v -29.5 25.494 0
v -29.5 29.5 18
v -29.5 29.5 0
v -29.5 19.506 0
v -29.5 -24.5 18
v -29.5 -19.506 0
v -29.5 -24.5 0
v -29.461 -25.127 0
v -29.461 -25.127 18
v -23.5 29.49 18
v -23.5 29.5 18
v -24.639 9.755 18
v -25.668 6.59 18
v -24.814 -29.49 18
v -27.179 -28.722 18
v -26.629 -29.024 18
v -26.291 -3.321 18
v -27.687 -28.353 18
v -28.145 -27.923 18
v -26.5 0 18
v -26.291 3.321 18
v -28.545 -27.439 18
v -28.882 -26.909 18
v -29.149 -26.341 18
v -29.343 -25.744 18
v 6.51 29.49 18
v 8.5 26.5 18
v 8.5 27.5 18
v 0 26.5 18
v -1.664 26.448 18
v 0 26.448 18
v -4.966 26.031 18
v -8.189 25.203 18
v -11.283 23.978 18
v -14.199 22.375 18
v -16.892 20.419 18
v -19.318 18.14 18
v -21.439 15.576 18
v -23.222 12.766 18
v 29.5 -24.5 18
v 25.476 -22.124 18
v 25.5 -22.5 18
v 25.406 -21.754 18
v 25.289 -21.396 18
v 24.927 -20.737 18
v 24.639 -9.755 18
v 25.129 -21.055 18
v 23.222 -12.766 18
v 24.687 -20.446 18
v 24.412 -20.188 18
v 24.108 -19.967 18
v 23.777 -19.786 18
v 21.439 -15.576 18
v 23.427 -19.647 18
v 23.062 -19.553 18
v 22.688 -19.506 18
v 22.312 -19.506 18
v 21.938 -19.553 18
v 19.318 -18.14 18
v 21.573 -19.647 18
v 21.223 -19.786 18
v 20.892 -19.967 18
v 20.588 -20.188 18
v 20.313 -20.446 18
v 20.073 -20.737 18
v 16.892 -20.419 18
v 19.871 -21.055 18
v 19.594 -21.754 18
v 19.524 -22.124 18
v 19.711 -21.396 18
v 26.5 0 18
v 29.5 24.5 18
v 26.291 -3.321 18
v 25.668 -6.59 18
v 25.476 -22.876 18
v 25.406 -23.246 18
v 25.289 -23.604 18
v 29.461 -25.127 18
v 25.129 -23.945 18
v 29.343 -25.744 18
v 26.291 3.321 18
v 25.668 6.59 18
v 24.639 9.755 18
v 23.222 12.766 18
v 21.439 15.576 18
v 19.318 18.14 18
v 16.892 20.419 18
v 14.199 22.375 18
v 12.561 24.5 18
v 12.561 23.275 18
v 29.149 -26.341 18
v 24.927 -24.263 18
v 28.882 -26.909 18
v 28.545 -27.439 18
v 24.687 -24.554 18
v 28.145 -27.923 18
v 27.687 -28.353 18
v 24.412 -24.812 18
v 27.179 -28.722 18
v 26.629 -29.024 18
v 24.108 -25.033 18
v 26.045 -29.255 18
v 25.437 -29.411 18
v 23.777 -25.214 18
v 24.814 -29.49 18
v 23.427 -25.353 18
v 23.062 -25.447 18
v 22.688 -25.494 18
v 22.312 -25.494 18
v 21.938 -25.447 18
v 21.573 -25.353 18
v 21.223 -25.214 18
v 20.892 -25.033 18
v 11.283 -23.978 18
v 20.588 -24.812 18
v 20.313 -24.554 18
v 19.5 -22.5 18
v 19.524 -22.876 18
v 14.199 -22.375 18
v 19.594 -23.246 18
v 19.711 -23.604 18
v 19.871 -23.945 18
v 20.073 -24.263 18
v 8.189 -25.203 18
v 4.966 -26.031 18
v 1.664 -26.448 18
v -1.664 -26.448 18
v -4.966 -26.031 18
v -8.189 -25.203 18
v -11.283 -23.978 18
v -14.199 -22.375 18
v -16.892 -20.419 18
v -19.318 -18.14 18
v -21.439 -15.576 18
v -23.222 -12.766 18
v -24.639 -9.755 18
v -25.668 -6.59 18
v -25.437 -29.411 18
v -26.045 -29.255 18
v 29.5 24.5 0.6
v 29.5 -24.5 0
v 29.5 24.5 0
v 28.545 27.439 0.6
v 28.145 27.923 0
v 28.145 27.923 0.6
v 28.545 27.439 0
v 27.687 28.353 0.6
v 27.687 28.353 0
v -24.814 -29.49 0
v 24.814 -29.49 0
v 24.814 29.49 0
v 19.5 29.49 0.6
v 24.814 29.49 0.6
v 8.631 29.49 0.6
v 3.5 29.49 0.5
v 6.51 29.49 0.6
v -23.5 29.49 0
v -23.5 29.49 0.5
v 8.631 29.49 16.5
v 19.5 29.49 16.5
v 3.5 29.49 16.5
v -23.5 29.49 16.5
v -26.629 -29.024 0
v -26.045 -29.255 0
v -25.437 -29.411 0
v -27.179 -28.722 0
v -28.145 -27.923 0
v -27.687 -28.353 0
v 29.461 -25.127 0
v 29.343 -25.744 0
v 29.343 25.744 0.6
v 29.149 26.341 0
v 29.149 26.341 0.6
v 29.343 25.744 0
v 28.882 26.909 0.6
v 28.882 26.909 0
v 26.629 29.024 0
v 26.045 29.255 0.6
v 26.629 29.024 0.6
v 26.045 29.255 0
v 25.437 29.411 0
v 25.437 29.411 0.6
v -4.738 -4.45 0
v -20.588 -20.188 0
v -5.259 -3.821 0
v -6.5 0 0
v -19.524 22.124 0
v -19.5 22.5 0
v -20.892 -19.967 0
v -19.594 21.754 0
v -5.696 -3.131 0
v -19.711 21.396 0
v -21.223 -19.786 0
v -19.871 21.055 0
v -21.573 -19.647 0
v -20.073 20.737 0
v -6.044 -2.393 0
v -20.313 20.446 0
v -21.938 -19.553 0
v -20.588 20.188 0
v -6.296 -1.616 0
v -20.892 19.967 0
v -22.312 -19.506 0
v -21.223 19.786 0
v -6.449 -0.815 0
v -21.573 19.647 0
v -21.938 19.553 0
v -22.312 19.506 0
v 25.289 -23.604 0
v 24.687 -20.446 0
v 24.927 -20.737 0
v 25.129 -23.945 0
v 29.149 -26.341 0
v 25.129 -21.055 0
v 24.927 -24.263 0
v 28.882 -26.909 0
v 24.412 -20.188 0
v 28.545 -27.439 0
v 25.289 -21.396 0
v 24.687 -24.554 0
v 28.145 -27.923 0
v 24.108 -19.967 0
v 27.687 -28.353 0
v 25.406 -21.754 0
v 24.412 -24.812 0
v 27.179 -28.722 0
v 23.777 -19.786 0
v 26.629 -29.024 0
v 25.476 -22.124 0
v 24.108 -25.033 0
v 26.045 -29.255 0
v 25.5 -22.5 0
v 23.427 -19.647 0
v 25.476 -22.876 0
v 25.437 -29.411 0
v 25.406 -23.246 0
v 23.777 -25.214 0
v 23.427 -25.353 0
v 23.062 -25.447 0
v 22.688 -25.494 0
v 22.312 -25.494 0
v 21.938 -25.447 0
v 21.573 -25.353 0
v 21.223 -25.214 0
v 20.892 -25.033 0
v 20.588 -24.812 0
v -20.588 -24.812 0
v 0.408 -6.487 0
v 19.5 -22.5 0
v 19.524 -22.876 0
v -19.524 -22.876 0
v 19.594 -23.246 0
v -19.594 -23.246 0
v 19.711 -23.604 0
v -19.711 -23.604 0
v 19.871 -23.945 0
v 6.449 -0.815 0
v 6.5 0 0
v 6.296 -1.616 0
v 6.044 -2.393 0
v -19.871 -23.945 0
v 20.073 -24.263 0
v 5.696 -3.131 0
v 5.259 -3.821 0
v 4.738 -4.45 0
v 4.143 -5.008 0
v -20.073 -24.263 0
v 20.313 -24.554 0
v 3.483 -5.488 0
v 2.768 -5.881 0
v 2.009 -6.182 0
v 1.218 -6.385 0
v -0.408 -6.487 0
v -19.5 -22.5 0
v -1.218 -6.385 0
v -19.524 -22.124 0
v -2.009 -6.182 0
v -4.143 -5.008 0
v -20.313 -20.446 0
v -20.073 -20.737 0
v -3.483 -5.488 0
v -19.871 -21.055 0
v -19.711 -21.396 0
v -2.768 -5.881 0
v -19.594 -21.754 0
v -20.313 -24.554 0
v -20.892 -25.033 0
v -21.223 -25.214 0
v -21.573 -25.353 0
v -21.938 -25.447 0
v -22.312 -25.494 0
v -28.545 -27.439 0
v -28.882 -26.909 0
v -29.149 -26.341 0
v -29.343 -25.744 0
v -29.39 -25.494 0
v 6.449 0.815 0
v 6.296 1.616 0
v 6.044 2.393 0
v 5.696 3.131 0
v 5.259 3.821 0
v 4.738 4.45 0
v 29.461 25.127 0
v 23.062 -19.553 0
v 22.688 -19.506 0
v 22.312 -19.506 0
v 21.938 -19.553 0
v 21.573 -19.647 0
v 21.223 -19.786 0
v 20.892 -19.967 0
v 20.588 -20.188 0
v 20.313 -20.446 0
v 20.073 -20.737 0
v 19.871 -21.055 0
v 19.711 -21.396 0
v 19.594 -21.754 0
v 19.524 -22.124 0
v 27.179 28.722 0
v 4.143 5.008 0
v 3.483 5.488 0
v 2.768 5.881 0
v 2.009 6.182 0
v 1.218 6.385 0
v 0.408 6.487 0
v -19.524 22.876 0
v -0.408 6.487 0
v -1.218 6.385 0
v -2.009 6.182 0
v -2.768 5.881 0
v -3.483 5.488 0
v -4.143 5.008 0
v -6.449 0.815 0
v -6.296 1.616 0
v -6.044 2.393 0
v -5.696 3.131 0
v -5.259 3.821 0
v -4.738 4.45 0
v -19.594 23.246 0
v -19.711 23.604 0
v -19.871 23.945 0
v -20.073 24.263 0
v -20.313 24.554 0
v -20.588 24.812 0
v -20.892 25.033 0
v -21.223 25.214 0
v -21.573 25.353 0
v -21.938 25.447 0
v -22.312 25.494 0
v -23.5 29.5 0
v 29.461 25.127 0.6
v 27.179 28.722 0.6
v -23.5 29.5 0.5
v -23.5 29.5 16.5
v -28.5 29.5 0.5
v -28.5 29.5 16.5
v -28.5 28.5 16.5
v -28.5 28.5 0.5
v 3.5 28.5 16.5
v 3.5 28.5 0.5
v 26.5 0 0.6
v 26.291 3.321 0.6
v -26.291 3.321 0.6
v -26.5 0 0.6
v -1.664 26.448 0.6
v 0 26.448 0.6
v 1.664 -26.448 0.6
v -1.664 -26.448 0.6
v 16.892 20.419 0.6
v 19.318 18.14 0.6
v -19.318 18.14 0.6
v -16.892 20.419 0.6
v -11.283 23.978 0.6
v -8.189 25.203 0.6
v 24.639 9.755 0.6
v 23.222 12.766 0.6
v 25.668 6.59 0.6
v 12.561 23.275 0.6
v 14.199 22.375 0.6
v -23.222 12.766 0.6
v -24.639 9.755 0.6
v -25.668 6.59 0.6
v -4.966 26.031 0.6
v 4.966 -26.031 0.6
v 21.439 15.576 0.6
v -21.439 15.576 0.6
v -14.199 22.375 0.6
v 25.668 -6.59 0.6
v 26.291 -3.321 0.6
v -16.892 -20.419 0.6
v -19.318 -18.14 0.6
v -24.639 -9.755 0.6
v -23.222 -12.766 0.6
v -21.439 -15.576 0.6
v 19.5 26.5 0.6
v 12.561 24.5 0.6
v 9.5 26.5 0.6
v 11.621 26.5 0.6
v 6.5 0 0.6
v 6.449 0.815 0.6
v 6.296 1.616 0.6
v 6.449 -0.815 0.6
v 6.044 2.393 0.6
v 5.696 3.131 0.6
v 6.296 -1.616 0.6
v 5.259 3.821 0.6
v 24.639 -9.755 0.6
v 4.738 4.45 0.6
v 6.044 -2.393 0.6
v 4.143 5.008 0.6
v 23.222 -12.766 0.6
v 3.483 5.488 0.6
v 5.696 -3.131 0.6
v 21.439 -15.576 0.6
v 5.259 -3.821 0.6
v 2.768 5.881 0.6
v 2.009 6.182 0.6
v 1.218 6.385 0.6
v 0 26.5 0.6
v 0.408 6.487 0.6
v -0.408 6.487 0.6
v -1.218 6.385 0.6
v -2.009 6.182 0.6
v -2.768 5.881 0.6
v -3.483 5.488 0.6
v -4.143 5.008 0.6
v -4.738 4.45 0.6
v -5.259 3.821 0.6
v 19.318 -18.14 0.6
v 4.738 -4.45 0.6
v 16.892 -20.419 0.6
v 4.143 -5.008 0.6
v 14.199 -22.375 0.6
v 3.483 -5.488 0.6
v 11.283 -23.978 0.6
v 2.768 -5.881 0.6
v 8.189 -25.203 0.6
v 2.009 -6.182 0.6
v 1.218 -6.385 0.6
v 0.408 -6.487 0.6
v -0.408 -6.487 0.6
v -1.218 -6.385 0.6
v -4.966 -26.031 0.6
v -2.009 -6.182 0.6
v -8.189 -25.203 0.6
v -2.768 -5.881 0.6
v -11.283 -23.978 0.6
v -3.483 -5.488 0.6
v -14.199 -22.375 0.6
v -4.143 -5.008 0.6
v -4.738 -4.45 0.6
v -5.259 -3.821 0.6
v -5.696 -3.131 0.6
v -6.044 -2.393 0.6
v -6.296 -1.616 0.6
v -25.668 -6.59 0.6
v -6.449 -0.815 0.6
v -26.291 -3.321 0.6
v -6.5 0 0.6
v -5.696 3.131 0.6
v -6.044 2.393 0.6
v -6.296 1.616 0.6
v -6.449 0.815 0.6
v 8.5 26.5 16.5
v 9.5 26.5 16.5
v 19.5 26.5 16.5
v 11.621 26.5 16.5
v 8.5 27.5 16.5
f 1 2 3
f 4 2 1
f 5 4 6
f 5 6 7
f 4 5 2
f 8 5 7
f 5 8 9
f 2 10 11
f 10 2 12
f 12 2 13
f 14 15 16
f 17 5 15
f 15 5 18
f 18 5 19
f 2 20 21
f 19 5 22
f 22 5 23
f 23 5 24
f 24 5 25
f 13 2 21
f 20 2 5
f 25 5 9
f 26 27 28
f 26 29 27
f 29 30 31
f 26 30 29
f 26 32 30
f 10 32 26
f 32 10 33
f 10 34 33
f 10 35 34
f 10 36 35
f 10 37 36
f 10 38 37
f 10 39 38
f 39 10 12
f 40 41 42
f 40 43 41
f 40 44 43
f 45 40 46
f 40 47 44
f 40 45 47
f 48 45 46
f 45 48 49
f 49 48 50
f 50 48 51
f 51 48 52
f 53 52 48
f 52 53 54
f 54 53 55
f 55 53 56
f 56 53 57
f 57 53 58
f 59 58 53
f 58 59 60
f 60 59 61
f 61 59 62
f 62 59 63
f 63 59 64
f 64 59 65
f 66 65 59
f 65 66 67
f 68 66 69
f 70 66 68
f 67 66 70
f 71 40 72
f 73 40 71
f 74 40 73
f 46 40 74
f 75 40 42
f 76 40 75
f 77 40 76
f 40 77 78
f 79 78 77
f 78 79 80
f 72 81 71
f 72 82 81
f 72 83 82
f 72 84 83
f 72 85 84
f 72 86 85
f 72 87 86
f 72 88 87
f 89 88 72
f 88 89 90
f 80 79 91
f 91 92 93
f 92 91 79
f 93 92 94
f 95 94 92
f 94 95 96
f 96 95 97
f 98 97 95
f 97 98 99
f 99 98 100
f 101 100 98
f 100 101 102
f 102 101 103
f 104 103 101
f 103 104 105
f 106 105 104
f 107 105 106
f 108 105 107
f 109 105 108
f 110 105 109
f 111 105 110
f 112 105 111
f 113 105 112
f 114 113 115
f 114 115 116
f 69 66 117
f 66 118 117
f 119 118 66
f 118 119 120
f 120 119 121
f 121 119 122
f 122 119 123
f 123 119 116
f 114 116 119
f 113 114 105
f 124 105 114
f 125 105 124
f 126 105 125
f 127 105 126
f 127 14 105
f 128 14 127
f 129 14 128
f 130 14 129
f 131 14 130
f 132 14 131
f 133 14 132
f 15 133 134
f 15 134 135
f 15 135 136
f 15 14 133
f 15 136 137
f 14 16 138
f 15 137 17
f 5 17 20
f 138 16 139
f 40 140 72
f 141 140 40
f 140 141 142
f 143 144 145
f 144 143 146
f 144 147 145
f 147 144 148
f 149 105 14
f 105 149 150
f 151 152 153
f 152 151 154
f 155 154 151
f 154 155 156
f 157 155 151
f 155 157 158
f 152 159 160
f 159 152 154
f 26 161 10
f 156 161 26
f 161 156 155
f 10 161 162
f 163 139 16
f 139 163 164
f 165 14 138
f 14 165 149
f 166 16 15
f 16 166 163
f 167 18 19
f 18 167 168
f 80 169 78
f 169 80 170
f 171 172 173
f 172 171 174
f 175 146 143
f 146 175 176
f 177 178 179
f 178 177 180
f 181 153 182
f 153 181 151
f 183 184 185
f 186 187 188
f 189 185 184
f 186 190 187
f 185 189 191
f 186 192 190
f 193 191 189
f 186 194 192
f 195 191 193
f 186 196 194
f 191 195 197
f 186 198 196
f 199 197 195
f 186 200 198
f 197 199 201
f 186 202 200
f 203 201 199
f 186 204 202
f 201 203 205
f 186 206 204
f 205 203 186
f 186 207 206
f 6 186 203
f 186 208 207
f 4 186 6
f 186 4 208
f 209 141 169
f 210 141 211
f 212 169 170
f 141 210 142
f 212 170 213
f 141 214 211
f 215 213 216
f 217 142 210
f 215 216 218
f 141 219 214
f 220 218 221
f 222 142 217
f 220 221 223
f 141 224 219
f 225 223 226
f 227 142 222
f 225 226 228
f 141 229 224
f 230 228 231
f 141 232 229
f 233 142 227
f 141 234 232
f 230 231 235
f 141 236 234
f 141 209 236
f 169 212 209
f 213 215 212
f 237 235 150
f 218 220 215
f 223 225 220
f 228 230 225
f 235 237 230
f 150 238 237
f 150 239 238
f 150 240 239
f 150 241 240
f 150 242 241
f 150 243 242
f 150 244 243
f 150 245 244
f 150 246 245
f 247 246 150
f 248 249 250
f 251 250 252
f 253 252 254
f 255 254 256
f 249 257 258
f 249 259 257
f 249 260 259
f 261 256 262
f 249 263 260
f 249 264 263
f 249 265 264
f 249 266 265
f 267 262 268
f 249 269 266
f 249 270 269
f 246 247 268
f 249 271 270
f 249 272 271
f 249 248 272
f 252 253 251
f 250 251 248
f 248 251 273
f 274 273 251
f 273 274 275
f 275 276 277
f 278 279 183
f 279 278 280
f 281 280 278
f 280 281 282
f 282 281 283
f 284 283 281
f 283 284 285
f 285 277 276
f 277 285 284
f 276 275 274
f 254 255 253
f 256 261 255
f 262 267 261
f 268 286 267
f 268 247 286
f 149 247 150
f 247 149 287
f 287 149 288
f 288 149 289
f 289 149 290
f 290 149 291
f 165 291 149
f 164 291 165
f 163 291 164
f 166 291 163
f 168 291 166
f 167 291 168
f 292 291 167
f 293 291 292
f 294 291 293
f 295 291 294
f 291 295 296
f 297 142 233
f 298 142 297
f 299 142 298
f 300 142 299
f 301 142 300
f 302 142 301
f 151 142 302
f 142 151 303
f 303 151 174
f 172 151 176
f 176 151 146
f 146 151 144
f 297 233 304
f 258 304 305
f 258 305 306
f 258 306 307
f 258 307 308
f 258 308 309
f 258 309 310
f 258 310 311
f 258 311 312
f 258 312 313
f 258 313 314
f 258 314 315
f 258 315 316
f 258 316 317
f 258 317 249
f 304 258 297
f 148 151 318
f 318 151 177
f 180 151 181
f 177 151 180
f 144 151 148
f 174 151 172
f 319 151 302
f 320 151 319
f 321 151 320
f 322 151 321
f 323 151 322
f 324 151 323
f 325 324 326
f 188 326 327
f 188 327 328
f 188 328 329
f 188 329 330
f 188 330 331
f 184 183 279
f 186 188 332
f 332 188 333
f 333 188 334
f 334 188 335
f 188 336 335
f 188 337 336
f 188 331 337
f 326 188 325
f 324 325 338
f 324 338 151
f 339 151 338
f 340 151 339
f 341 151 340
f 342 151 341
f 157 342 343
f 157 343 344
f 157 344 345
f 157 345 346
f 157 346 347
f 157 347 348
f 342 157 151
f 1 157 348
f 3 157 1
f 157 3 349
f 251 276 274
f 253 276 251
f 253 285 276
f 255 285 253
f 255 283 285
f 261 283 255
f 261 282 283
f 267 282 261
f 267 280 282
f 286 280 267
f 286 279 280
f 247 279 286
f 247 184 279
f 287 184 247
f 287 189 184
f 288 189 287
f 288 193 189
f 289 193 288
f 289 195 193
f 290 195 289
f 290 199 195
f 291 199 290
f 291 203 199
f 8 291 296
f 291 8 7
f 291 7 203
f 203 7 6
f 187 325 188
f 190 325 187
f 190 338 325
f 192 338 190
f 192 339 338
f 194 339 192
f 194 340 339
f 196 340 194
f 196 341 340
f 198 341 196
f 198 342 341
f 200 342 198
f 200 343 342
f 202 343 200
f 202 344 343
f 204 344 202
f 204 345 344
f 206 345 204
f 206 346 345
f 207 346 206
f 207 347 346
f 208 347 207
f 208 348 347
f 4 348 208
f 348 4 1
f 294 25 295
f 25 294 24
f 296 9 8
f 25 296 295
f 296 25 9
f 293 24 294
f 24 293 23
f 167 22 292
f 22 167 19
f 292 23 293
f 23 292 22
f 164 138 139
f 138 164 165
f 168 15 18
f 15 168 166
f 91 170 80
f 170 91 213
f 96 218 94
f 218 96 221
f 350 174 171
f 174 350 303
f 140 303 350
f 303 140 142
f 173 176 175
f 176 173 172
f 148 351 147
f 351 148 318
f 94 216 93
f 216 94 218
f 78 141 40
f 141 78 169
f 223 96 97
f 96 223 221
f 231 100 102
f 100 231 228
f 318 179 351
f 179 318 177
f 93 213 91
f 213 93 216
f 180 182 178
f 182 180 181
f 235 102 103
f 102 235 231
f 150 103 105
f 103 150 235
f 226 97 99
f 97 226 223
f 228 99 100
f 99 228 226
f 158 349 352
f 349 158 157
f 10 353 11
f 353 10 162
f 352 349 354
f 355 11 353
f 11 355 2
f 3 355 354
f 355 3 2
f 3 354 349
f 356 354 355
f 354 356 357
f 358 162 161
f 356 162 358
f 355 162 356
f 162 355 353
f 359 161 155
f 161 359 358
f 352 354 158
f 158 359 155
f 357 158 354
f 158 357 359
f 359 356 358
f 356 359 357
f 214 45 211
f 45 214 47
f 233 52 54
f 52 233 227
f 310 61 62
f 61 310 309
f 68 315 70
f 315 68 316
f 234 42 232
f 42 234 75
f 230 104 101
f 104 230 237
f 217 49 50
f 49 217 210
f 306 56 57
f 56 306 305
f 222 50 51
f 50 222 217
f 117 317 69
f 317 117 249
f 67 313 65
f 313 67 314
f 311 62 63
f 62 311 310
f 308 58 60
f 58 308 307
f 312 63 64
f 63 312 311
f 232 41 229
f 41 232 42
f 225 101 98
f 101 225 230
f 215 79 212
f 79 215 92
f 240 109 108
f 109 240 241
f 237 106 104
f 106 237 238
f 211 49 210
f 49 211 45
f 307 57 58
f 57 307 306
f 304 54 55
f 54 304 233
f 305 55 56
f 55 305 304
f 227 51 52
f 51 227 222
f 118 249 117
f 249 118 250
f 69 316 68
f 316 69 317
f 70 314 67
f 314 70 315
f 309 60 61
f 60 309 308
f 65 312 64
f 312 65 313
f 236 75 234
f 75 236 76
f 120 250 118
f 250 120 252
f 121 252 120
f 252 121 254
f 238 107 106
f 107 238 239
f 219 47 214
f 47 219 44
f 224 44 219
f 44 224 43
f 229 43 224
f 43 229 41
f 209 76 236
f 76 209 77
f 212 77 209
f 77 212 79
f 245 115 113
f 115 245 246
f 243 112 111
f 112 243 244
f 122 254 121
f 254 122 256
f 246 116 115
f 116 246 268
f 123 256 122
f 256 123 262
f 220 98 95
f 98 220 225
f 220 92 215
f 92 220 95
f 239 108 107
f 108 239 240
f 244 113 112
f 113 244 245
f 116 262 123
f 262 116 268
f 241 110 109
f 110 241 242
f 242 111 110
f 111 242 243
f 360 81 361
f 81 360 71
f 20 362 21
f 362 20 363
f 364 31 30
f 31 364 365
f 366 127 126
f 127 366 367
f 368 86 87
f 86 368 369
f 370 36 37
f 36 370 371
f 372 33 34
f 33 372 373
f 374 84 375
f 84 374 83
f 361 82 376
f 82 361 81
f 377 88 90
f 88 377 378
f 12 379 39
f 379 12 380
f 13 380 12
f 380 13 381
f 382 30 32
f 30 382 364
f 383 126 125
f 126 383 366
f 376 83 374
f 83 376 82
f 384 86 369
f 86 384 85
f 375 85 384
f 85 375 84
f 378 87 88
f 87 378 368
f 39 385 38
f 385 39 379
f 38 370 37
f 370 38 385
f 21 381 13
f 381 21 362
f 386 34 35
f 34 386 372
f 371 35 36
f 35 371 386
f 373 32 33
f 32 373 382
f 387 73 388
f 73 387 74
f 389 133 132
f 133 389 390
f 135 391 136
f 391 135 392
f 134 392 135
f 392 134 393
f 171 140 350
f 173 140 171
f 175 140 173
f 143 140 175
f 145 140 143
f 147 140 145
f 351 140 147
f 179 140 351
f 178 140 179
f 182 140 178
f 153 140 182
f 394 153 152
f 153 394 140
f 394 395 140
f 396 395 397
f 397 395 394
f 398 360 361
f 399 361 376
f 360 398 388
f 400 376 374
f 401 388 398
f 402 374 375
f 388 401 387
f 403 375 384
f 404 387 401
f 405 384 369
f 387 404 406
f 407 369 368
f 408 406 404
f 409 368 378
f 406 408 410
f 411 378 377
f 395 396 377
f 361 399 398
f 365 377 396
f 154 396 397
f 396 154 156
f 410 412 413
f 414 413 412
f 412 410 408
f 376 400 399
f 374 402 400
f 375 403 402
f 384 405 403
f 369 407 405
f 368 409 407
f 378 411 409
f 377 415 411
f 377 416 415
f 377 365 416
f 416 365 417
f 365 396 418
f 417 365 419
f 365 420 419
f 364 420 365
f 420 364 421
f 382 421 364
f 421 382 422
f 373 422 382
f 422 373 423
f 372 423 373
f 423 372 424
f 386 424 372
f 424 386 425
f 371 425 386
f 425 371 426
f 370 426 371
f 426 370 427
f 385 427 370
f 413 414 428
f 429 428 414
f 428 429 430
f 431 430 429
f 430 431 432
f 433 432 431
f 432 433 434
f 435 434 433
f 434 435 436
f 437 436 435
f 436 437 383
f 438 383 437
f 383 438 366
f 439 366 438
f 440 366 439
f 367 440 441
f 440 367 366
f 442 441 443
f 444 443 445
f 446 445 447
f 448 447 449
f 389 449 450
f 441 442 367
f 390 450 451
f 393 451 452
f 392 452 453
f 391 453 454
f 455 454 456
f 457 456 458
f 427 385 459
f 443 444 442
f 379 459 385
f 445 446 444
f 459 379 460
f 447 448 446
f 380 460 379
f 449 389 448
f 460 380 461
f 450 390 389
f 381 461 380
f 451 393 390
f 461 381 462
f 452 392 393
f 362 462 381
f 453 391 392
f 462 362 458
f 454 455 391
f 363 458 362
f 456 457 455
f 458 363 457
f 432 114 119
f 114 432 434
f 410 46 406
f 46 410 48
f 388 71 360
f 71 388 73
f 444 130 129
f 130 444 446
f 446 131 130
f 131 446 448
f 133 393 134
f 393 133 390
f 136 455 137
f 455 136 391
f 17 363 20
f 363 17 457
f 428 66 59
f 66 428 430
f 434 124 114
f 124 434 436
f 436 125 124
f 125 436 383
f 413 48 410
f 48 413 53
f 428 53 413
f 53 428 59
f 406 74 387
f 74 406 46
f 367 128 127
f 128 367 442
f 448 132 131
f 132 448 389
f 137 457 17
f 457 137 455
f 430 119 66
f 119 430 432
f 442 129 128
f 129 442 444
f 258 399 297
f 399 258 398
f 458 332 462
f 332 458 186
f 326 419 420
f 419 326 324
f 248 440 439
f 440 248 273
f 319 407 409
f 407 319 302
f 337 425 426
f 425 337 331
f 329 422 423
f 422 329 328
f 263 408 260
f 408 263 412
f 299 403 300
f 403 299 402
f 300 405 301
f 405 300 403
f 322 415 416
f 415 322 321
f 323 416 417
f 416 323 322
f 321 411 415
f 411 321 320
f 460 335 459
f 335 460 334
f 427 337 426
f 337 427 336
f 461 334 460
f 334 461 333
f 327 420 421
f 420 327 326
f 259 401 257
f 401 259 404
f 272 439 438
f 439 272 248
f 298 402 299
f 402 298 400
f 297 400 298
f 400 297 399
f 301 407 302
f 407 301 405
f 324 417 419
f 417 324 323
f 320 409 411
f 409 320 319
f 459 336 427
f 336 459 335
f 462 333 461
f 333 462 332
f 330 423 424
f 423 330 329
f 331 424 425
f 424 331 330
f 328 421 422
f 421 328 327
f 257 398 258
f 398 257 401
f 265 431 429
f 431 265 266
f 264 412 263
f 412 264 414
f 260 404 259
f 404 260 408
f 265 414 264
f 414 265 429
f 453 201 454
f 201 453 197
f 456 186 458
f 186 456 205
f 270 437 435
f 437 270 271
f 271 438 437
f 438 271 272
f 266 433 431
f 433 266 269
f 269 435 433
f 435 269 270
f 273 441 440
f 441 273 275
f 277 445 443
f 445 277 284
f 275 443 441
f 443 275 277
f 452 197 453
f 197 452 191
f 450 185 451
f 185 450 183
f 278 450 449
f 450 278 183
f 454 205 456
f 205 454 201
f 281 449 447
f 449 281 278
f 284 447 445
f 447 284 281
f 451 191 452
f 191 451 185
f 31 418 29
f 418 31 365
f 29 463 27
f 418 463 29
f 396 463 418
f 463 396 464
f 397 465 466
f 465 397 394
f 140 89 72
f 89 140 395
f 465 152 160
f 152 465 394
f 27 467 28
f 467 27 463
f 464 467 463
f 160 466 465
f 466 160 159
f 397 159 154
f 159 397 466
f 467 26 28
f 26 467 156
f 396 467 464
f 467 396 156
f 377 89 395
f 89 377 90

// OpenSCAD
$fn = 50;


difference() {
	union() {
		hull() {
			translate(v = [-24.5000000000, 24.5000000000, 0]) {
				cylinder(h = 18, r = 5);
			}
			translate(v = [24.5000000000, 24.5000000000, 0]) {
				cylinder(h = 18, r = 5);
			}
			translate(v = [-24.5000000000, -24.5000000000, 0]) {
				cylinder(h = 18, r = 5);
			}
			translate(v = [24.5000000000, -24.5000000000, 0]) {
				cylinder(h = 18, r = 5);
			}
		}
		translate(v = [-29.5000000000, 23.5000000000, 0]) {
			cube(size = [6, 6, 18]);
		}
	}
	union() {
		translate(v = [-30.0000000000, -22.5000000000, -250.0000000000]) {
			rotate(a = [0, 0, 0]) {
				difference() {
					union() {
						hull() {
							translate(v = [7.5000000000, 0, 0]) {
								cylinder(h = 250, r = 3.0000000000, r1 = 3.0000000000, r2 = 3.0000000000);
							}
							translate(v = [-7.5000000000, 0, 0]) {
								cylinder(h = 250, r = 3.0000000000, r1 = 3.0000000000, r2 = 3.0000000000);
							}
						}
					}
					union();
				}
			}
		}
		translate(v = [-30.0000000000, 22.5000000000, -250.0000000000]) {
			rotate(a = [0, 0, 0]) {
				difference() {
					union() {
						hull() {
							translate(v = [7.5000000000, 0, 0]) {
								cylinder(h = 250, r = 3.0000000000, r1 = 3.0000000000, r2 = 3.0000000000);
							}
							translate(v = [-7.5000000000, 0, 0]) {
								cylinder(h = 250, r = 3.0000000000, r1 = 3.0000000000, r2 = 3.0000000000);
							}
						}
					}
					union();
				}
			}
		}
		translate(v = [-28.5000000000, 28.5000000000, 0.5000000000]) {
			cube(size = [32, 1, 16]);
		}
		translate(v = [22.5000000000, -22.5000000000, -50.0000000000]) {
			cylinder(h = 100, r = 3.0000000000);
		}
		translate(v = [0, 0, 0.6000000000]) {
			cylinder(h = 20.4000000000, r = 26.5000000000);
		}
		translate(v = [0, 0, -9.0000000000]) {
			cylinder(h = 18, r = 6.5000000000);
		}
		translate(v = [0.0000000000, 24.5000000000, 0.6000000000]) {
			cube(size = [29.5000000000, 2, 20.4000000000]);
		}
		translate(v = [19.5000000000, 24.5000000000, 0.6000000000]) {
			cube(size = [10, 5, 20.4000000000]);
		}
		translate(v = [8.5000000000, 24.5000000000, 16.5000000000]) {
			cube(size = [21, 5, 1.5000000000]);
		}
		translate(v = [5.7500000000, 30.2500000000, 0.6000000000]) {
			rotate(a = [0, 0, -45]) {
				cube(size = [7.5000000000, 1.5000000000, 20.4000000000]);
			}
		}
		translate(v = [5.0610000000, 22.5000000000, 0.6000000000]) {
			cube(size = [7.5000000000, 2, 17.4000000000]);
		}
	}
}
